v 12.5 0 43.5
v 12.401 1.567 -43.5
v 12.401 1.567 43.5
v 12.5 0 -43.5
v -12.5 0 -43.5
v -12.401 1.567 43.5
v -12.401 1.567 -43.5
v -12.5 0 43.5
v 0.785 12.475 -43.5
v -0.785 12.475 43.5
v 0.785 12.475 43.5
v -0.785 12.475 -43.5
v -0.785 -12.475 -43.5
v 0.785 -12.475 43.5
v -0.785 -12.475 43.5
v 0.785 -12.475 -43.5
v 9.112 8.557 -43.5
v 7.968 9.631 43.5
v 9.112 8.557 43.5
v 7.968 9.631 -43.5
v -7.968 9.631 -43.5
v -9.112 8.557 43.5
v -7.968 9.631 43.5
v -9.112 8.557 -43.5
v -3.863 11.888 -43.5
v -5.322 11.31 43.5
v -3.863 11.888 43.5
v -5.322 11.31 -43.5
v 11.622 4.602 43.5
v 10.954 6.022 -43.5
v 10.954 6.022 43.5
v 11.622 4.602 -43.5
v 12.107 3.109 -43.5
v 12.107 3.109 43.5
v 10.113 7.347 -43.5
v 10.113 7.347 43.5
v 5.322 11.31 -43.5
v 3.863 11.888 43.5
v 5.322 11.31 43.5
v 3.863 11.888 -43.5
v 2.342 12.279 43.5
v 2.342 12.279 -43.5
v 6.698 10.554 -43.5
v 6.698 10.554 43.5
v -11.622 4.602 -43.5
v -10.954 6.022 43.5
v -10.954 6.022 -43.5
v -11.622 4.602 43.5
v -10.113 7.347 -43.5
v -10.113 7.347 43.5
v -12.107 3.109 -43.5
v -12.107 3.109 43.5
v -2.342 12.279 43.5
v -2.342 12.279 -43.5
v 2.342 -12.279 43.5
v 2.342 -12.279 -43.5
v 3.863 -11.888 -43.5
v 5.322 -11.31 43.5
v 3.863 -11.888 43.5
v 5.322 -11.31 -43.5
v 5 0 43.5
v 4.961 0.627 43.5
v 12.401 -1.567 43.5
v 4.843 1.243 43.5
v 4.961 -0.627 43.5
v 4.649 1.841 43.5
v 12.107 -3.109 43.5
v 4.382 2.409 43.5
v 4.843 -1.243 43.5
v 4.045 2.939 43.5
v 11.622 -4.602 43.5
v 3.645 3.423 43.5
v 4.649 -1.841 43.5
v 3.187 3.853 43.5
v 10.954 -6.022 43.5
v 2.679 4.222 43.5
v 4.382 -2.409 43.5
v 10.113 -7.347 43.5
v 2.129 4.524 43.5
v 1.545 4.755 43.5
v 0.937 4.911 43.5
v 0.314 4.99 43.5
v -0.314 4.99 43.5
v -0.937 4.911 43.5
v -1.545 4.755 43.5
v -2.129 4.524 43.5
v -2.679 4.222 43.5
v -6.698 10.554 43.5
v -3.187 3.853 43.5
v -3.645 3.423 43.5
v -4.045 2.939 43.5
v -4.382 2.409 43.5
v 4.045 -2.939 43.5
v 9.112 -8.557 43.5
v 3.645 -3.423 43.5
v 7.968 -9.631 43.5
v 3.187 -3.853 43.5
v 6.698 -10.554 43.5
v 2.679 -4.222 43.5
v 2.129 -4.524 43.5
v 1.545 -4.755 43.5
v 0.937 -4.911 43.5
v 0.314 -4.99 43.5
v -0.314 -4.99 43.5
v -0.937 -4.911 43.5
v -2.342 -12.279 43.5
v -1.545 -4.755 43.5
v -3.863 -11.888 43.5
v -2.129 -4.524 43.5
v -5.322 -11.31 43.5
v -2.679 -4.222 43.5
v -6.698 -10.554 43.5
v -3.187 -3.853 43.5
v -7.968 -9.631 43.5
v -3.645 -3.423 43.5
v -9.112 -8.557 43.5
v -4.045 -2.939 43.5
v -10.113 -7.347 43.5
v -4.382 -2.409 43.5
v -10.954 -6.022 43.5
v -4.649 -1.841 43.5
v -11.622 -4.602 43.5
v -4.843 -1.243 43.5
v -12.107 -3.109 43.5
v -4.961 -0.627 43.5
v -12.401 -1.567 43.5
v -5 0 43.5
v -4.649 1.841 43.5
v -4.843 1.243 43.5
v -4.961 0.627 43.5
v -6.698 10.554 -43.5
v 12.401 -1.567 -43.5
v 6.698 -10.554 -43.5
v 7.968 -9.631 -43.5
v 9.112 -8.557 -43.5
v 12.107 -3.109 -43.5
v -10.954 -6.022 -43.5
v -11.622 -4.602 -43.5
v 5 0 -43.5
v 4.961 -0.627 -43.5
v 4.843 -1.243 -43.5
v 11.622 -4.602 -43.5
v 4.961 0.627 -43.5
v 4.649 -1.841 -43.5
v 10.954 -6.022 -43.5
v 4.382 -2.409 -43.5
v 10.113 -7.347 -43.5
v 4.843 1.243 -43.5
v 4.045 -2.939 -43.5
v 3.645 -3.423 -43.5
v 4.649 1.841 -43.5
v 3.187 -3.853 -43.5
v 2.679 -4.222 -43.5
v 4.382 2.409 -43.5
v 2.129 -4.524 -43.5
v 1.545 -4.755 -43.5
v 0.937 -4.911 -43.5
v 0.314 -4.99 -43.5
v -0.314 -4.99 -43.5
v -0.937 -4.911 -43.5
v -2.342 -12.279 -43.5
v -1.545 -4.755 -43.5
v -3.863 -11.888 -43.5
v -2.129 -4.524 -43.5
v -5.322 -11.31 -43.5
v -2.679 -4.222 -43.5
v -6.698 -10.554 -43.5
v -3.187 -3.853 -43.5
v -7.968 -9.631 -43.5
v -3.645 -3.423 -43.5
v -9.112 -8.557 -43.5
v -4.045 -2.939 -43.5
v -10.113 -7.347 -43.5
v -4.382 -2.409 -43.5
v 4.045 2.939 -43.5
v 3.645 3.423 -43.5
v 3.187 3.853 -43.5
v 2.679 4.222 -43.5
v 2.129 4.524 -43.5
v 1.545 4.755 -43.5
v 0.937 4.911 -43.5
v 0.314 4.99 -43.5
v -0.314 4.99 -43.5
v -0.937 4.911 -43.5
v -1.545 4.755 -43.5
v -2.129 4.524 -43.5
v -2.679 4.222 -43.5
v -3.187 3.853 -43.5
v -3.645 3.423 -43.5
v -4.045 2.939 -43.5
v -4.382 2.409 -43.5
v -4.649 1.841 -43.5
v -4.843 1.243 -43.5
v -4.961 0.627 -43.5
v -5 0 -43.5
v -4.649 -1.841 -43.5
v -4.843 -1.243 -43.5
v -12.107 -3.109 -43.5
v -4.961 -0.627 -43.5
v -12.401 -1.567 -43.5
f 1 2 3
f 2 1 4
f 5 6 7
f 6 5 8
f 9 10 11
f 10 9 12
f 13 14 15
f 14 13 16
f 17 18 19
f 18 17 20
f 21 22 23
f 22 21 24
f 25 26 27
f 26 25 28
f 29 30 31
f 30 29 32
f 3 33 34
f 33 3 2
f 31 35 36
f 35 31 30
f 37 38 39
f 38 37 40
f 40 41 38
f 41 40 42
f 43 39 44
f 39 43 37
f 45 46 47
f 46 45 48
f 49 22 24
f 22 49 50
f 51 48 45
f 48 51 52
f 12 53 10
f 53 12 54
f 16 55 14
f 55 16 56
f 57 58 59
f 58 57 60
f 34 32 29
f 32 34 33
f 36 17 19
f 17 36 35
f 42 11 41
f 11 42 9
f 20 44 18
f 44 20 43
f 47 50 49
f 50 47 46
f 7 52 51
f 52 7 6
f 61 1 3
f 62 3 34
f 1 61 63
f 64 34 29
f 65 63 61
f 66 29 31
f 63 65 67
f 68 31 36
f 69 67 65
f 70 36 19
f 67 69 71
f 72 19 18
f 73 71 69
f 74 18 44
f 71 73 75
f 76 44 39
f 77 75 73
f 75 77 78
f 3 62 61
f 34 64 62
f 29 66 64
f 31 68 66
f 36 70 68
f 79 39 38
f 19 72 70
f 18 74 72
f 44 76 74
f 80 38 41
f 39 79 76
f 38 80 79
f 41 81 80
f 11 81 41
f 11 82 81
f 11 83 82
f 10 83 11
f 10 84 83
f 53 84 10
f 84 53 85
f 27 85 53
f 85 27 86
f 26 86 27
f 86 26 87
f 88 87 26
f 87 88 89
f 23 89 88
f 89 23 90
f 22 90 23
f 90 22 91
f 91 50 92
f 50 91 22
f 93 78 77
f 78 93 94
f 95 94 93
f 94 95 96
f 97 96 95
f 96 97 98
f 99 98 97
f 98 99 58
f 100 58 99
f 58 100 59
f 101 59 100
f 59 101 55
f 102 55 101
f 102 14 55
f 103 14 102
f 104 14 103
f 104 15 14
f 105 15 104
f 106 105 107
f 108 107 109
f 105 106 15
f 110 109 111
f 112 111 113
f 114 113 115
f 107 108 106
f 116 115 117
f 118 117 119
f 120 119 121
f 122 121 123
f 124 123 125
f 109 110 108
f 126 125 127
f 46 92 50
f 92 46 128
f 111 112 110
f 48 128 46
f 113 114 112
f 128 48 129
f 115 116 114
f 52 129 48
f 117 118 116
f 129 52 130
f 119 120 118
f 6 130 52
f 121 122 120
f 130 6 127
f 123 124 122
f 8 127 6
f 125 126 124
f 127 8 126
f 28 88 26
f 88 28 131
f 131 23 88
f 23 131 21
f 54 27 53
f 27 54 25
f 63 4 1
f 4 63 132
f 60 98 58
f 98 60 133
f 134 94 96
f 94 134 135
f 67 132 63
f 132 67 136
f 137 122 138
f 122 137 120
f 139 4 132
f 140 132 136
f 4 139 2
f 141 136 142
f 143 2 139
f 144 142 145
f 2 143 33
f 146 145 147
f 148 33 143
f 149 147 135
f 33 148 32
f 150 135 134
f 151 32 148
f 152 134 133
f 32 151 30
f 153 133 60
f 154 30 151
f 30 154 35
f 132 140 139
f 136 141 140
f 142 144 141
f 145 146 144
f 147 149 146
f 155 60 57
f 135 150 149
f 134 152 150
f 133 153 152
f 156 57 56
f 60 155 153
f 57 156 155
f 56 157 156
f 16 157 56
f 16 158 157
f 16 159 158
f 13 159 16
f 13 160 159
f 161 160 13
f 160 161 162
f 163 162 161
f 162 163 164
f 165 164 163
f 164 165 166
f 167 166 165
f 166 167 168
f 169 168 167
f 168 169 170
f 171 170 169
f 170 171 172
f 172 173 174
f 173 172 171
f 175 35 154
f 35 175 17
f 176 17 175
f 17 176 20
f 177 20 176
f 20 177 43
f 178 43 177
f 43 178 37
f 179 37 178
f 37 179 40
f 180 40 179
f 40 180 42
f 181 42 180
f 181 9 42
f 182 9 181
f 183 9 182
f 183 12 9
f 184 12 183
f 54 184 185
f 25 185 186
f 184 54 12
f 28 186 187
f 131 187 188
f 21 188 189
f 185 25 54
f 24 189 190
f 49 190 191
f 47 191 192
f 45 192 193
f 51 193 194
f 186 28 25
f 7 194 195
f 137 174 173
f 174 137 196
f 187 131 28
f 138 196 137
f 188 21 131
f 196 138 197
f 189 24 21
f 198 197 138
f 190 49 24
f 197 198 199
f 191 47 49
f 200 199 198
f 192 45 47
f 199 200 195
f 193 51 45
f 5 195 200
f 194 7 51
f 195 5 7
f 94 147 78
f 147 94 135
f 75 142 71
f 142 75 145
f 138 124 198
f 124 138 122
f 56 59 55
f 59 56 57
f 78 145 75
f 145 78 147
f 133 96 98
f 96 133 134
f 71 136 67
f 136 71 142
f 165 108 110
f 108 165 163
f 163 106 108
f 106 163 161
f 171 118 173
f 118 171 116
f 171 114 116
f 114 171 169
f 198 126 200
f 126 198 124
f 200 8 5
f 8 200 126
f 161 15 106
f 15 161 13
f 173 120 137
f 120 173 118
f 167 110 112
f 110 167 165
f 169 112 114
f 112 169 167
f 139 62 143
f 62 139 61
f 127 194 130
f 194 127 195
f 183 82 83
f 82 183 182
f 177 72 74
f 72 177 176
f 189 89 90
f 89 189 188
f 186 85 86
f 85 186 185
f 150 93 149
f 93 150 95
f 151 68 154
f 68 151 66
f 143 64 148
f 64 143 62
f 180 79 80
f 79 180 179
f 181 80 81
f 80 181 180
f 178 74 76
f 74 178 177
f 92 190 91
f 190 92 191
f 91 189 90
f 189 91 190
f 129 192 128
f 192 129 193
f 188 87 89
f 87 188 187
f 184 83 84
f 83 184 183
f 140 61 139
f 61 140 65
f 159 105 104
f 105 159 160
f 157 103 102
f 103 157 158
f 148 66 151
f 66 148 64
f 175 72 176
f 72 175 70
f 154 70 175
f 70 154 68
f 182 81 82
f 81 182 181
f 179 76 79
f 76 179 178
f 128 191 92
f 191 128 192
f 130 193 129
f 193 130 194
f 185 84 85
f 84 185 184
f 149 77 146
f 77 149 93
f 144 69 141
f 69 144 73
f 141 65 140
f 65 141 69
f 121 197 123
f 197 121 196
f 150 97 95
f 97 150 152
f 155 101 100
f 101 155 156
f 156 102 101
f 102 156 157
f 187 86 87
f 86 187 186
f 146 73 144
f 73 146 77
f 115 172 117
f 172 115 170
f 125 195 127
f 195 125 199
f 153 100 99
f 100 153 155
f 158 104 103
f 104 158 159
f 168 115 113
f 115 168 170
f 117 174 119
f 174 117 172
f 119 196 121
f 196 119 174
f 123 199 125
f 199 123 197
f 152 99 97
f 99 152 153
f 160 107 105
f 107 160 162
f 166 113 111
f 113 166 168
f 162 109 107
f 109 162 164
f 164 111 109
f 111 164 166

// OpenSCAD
$fn = 50;


difference() {
	union() {
		translate(v = [0, 0, -43.5000000000]) {
			cylinder(h = 87, r = 12.5000000000);
		}
	}
	union() {
		translate(v = [0, 0, -100.0000000000]) {
			cylinder(h = 200, r = 5);
		}
	}
}
